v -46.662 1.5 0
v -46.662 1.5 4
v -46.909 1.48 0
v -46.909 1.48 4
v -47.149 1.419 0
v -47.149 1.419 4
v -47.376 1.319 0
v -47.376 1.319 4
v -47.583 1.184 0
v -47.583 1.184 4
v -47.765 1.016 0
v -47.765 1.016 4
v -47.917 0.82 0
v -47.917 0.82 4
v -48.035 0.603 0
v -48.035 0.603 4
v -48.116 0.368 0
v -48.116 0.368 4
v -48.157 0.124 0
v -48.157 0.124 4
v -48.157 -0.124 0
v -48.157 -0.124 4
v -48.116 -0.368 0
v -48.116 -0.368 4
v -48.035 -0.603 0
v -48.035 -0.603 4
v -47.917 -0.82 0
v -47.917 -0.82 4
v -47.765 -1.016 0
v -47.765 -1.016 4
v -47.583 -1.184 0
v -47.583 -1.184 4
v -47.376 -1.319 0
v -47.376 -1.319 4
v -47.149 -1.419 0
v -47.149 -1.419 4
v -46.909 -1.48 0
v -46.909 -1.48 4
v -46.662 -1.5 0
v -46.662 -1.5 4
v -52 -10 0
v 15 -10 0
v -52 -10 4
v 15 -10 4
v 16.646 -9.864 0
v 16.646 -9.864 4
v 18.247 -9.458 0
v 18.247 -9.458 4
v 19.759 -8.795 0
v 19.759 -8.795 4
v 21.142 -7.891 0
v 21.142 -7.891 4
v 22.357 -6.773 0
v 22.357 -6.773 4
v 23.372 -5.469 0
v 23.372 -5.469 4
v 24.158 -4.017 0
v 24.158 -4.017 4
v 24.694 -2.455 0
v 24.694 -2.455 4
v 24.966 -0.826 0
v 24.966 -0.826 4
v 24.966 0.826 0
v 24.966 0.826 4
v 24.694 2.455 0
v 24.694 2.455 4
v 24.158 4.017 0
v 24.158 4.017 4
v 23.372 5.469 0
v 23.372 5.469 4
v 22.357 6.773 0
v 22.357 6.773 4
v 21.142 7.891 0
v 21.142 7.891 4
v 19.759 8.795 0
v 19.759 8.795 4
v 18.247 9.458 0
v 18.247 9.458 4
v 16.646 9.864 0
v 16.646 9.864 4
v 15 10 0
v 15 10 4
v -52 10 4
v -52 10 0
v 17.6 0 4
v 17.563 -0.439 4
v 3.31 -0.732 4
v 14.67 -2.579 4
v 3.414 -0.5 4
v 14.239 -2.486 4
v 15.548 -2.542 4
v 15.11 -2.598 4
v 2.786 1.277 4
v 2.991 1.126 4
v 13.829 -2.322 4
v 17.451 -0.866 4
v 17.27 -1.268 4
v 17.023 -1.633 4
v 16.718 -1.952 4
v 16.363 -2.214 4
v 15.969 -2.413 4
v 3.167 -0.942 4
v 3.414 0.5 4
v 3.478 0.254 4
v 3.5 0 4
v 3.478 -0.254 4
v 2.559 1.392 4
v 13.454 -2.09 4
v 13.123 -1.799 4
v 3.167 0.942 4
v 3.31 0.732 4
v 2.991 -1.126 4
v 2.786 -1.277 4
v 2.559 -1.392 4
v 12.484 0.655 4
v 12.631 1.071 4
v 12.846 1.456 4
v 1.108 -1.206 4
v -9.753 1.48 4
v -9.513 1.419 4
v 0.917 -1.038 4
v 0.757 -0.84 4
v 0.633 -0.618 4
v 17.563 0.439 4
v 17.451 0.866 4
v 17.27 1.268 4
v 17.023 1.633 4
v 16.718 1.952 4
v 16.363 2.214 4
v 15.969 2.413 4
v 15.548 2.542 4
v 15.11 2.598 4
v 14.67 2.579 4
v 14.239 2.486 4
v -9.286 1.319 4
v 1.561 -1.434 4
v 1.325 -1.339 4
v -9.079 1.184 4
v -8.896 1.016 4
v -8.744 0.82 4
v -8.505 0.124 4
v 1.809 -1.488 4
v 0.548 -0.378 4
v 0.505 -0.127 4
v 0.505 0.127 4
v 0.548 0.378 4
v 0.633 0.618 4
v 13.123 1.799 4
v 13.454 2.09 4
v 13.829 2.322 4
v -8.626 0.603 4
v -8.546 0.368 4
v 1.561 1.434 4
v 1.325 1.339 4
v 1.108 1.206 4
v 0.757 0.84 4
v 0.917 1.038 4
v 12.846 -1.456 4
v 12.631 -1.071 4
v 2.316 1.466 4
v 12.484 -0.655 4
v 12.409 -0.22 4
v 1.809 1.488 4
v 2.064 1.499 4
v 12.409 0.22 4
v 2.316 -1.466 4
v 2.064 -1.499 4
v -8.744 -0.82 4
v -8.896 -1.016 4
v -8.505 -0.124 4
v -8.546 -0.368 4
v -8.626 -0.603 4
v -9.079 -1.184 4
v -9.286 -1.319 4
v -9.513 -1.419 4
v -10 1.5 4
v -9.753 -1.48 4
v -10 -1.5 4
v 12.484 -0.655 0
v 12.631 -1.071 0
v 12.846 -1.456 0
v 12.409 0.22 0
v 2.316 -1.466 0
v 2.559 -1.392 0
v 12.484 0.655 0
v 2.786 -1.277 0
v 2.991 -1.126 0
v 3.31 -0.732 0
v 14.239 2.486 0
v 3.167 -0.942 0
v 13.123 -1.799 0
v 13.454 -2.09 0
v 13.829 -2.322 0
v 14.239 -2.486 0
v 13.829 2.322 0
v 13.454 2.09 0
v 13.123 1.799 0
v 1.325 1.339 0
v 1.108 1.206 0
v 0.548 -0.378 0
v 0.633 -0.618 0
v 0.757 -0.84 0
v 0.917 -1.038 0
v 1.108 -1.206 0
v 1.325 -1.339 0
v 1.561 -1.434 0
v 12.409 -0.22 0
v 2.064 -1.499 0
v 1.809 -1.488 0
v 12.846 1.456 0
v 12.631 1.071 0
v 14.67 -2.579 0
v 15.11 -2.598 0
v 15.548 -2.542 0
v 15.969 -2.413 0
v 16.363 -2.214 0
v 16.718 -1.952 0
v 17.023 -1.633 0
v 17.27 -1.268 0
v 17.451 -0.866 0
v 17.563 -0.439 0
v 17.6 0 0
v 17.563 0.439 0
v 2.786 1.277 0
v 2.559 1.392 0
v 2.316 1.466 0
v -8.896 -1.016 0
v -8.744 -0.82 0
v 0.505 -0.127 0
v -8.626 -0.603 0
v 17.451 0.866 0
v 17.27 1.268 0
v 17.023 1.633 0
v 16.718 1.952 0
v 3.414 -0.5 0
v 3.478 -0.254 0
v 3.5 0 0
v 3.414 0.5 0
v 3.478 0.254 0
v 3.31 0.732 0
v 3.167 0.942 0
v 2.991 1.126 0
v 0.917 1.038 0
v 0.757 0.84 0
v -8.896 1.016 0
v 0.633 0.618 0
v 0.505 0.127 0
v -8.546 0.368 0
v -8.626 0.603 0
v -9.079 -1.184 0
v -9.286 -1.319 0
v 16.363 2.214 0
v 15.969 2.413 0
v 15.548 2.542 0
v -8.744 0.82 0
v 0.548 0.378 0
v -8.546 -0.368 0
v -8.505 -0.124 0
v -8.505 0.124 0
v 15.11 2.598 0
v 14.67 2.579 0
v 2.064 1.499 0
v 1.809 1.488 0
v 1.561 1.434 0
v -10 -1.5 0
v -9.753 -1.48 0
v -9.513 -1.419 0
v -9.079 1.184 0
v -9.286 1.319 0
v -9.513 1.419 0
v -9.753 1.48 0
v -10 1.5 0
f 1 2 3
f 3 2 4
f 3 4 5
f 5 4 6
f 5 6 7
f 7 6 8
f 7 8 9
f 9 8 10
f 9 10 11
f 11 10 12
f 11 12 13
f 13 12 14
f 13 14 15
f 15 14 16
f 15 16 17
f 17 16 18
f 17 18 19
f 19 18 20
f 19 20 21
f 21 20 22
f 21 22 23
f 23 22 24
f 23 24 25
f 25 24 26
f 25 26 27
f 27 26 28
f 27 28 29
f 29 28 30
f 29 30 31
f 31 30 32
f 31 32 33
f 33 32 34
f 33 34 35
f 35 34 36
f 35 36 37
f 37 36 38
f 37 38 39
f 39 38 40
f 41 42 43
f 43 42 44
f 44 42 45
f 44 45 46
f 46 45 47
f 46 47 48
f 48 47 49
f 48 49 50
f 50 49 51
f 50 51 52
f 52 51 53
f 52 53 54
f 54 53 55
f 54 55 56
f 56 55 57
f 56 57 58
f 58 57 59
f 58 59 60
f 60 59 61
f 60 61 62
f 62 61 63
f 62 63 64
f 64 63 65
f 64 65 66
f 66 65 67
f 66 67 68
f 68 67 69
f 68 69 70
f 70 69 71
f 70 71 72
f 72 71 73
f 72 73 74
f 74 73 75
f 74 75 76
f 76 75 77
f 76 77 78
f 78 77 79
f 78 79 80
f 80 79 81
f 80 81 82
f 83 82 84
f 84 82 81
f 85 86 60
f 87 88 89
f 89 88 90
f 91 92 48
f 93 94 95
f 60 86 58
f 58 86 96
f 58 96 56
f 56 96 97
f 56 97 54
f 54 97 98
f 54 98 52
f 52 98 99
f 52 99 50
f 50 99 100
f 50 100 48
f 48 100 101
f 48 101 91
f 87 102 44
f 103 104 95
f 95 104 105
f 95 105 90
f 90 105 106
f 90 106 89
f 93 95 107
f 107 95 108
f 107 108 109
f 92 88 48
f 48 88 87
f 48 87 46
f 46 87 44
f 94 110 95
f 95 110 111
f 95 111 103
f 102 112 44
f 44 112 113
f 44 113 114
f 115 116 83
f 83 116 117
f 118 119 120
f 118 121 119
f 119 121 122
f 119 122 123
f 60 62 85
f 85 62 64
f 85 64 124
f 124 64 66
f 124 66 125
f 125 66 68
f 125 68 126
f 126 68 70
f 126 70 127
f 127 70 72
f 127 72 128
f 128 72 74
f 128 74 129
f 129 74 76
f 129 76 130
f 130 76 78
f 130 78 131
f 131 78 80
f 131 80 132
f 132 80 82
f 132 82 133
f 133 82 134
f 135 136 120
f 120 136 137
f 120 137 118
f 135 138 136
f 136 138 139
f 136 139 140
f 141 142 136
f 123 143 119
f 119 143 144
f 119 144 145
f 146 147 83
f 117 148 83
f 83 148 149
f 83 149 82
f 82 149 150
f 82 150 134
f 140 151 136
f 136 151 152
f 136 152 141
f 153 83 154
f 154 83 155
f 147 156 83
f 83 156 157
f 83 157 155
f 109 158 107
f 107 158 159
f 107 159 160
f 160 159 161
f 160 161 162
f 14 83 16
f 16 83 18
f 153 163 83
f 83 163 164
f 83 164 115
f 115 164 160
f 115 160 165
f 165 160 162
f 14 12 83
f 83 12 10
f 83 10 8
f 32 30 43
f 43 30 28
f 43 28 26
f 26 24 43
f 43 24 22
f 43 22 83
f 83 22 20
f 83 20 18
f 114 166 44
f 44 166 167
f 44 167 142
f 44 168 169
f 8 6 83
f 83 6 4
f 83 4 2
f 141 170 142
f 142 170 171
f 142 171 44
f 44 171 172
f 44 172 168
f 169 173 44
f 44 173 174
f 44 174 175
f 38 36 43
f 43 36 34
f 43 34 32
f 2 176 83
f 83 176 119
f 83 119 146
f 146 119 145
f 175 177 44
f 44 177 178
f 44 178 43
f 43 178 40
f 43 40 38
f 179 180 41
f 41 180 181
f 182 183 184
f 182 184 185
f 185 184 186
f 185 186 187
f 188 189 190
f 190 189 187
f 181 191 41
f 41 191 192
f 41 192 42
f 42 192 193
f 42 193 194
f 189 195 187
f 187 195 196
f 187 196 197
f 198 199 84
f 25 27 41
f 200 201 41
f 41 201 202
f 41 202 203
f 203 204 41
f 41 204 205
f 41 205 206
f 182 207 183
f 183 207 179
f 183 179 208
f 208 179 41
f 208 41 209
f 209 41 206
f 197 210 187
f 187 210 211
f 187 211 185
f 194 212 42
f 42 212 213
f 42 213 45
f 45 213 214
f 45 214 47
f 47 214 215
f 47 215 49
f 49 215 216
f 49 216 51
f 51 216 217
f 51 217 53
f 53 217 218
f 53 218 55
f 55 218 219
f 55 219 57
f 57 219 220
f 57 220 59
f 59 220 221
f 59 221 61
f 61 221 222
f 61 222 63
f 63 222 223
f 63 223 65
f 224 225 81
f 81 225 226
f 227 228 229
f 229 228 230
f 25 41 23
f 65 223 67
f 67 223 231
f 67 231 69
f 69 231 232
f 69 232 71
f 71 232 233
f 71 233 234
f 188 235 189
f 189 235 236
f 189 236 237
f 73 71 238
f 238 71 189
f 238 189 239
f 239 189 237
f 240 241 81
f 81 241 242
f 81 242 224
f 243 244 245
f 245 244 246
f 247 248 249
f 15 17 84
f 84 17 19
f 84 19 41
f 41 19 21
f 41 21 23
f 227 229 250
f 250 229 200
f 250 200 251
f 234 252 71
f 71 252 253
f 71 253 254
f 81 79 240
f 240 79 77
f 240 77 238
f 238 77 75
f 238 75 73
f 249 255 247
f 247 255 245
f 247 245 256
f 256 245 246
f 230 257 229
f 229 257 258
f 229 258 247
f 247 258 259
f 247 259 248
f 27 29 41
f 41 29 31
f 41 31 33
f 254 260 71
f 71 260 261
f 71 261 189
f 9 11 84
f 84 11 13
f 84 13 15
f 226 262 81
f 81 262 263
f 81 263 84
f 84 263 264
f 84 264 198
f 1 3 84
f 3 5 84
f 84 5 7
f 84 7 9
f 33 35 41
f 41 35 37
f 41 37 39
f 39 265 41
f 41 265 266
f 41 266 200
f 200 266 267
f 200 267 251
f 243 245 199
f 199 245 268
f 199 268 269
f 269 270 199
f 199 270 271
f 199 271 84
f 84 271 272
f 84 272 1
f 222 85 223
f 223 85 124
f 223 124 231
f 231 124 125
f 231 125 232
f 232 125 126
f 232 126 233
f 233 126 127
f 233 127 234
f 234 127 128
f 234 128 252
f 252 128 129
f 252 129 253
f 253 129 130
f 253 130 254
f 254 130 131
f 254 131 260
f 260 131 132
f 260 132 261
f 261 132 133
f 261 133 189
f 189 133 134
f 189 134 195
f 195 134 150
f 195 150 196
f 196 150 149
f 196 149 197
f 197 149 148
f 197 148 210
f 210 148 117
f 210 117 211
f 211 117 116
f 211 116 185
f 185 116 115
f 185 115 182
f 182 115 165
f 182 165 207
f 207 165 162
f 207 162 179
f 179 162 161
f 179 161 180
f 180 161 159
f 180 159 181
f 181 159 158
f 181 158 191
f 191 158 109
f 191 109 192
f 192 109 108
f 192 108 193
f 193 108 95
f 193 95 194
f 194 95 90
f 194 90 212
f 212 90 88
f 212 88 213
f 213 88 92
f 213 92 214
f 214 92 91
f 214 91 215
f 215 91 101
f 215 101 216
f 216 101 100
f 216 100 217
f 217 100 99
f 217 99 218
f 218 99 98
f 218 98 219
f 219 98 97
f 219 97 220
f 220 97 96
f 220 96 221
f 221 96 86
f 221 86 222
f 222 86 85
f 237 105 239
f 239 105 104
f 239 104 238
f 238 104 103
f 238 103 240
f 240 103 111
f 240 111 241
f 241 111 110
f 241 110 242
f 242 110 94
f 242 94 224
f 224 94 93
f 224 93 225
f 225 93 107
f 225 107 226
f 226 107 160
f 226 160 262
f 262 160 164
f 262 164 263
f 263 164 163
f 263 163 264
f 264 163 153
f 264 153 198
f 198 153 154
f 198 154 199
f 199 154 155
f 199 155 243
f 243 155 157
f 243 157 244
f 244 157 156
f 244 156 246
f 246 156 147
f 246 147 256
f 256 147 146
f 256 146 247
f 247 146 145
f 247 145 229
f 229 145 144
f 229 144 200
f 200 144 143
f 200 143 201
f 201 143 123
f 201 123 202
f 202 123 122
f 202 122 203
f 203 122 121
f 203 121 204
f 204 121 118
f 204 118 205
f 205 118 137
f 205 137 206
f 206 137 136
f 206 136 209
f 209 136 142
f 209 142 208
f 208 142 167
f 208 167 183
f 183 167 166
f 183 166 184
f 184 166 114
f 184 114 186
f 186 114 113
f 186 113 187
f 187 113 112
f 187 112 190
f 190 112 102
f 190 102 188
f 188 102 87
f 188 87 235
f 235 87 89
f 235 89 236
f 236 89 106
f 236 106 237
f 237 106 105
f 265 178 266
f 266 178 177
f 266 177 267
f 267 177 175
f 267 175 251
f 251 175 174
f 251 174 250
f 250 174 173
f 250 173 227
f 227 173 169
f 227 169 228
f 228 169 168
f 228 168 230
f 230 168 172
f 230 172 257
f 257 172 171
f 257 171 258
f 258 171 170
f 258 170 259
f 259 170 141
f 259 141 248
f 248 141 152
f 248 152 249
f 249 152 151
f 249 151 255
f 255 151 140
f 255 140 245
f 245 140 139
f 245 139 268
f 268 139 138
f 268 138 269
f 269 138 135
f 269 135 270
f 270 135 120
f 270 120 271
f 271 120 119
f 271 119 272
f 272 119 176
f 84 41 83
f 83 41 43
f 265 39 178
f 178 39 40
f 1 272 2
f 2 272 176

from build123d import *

# Parameters (mm, degrees)
BOSS_EXTRUDE1_DEPTH = 4
SKETCH2_R           = 2.6
CUT_EXTRUDE1_DEPTH  = 4
SKETCH3_R           = 1.5
CUT_EXTRUDE2_DEPTH  = 4
FILLET1_R           = 3
SKETCH4_W           = 40
SKETCH4_H           = 20
BOSS_EXTRUDE2_DEPTH = 4
SKETCH5_R           = 1.5
CUT_EXTRUDE3_DEPTH  = 4
SKETCH6_W           = 36.661625307
SKETCH6_H           = 3
CUT_EXTRUDE4_DEPTH  = 4


with BuildPart() as part:
    # Sketch1 → Boss-Extrude1 (new body)
    with BuildSketch(Plane.XY):
        with BuildLine():
            Line((-15, 10), (-15, -10))
            Line((-15, -10), (15, -10))
            ThreePointArc((15, -10), (5, 0), (15, 10))
            Line((15, 10), (-15, 10))
        make_face()
        with BuildLine():
            ThreePointArc((15, 10), (5, 0), (15, -10))
            Line((15, -10), (15, 10))
        make_face()
        with BuildLine():
            Line((15, 10), (15, -10))
            ThreePointArc((15, -10), (22.071067812, -7.071067812), (25, 0))
            ThreePointArc((25, 0), (22.071067812, 7.071067812), (15, 10))
        make_face()
    extrude(amount=BOSS_EXTRUDE1_DEPTH)

    # Sketch2 → Cut-Extrude1 (cut)
    with BuildSketch(Plane.XY.offset(4)):
        with Locations((15, 0)):
            Circle(SKETCH2_R)
    extrude(amount=-CUT_EXTRUDE1_DEPTH, mode=Mode.SUBTRACT)

    # Sketch3 → Cut-Extrude2 (cut)
    with BuildSketch(Plane.XY.offset(4)):
        with Locations((-10, 0)):
            Circle(SKETCH3_R)
        with Locations((2, 0)):
            Circle(SKETCH3_R)
    extrude(amount=-CUT_EXTRUDE2_DEPTH, mode=Mode.SUBTRACT)

    # Fillet1
    fillet1_edges = [part.edges().sort_by_distance(p)[0] for p in [
        (-15, -10, 2),
        (-15, 10, 2),
    ]]
    fillet(fillet1_edges, radius=FILLET1_R)

    # Sketch4 → Boss-Extrude2 (add)
    with BuildSketch(Plane.XY.offset(4)):
        with Locations((-32, 0)):
            Rectangle(SKETCH4_W, SKETCH4_H)
    extrude(amount=-BOSS_EXTRUDE2_DEPTH)

    # Sketch5 → Cut-Extrude3 (cut)
    with BuildSketch(Plane.XY.offset(4)):
        with Locations((-46.661625307, 0)):
            Circle(SKETCH5_R)
    extrude(amount=-CUT_EXTRUDE3_DEPTH, mode=Mode.SUBTRACT)

    # Sketch6 → Cut-Extrude4 (cut)
    with BuildSketch(Plane.XY.offset(4)):
        with Locations((-28.330812654, 0)):
            Rectangle(SKETCH6_W, SKETCH6_H)
    extrude(amount=-CUT_EXTRUDE4_DEPTH, mode=Mode.SUBTRACT)


solid = part.part
